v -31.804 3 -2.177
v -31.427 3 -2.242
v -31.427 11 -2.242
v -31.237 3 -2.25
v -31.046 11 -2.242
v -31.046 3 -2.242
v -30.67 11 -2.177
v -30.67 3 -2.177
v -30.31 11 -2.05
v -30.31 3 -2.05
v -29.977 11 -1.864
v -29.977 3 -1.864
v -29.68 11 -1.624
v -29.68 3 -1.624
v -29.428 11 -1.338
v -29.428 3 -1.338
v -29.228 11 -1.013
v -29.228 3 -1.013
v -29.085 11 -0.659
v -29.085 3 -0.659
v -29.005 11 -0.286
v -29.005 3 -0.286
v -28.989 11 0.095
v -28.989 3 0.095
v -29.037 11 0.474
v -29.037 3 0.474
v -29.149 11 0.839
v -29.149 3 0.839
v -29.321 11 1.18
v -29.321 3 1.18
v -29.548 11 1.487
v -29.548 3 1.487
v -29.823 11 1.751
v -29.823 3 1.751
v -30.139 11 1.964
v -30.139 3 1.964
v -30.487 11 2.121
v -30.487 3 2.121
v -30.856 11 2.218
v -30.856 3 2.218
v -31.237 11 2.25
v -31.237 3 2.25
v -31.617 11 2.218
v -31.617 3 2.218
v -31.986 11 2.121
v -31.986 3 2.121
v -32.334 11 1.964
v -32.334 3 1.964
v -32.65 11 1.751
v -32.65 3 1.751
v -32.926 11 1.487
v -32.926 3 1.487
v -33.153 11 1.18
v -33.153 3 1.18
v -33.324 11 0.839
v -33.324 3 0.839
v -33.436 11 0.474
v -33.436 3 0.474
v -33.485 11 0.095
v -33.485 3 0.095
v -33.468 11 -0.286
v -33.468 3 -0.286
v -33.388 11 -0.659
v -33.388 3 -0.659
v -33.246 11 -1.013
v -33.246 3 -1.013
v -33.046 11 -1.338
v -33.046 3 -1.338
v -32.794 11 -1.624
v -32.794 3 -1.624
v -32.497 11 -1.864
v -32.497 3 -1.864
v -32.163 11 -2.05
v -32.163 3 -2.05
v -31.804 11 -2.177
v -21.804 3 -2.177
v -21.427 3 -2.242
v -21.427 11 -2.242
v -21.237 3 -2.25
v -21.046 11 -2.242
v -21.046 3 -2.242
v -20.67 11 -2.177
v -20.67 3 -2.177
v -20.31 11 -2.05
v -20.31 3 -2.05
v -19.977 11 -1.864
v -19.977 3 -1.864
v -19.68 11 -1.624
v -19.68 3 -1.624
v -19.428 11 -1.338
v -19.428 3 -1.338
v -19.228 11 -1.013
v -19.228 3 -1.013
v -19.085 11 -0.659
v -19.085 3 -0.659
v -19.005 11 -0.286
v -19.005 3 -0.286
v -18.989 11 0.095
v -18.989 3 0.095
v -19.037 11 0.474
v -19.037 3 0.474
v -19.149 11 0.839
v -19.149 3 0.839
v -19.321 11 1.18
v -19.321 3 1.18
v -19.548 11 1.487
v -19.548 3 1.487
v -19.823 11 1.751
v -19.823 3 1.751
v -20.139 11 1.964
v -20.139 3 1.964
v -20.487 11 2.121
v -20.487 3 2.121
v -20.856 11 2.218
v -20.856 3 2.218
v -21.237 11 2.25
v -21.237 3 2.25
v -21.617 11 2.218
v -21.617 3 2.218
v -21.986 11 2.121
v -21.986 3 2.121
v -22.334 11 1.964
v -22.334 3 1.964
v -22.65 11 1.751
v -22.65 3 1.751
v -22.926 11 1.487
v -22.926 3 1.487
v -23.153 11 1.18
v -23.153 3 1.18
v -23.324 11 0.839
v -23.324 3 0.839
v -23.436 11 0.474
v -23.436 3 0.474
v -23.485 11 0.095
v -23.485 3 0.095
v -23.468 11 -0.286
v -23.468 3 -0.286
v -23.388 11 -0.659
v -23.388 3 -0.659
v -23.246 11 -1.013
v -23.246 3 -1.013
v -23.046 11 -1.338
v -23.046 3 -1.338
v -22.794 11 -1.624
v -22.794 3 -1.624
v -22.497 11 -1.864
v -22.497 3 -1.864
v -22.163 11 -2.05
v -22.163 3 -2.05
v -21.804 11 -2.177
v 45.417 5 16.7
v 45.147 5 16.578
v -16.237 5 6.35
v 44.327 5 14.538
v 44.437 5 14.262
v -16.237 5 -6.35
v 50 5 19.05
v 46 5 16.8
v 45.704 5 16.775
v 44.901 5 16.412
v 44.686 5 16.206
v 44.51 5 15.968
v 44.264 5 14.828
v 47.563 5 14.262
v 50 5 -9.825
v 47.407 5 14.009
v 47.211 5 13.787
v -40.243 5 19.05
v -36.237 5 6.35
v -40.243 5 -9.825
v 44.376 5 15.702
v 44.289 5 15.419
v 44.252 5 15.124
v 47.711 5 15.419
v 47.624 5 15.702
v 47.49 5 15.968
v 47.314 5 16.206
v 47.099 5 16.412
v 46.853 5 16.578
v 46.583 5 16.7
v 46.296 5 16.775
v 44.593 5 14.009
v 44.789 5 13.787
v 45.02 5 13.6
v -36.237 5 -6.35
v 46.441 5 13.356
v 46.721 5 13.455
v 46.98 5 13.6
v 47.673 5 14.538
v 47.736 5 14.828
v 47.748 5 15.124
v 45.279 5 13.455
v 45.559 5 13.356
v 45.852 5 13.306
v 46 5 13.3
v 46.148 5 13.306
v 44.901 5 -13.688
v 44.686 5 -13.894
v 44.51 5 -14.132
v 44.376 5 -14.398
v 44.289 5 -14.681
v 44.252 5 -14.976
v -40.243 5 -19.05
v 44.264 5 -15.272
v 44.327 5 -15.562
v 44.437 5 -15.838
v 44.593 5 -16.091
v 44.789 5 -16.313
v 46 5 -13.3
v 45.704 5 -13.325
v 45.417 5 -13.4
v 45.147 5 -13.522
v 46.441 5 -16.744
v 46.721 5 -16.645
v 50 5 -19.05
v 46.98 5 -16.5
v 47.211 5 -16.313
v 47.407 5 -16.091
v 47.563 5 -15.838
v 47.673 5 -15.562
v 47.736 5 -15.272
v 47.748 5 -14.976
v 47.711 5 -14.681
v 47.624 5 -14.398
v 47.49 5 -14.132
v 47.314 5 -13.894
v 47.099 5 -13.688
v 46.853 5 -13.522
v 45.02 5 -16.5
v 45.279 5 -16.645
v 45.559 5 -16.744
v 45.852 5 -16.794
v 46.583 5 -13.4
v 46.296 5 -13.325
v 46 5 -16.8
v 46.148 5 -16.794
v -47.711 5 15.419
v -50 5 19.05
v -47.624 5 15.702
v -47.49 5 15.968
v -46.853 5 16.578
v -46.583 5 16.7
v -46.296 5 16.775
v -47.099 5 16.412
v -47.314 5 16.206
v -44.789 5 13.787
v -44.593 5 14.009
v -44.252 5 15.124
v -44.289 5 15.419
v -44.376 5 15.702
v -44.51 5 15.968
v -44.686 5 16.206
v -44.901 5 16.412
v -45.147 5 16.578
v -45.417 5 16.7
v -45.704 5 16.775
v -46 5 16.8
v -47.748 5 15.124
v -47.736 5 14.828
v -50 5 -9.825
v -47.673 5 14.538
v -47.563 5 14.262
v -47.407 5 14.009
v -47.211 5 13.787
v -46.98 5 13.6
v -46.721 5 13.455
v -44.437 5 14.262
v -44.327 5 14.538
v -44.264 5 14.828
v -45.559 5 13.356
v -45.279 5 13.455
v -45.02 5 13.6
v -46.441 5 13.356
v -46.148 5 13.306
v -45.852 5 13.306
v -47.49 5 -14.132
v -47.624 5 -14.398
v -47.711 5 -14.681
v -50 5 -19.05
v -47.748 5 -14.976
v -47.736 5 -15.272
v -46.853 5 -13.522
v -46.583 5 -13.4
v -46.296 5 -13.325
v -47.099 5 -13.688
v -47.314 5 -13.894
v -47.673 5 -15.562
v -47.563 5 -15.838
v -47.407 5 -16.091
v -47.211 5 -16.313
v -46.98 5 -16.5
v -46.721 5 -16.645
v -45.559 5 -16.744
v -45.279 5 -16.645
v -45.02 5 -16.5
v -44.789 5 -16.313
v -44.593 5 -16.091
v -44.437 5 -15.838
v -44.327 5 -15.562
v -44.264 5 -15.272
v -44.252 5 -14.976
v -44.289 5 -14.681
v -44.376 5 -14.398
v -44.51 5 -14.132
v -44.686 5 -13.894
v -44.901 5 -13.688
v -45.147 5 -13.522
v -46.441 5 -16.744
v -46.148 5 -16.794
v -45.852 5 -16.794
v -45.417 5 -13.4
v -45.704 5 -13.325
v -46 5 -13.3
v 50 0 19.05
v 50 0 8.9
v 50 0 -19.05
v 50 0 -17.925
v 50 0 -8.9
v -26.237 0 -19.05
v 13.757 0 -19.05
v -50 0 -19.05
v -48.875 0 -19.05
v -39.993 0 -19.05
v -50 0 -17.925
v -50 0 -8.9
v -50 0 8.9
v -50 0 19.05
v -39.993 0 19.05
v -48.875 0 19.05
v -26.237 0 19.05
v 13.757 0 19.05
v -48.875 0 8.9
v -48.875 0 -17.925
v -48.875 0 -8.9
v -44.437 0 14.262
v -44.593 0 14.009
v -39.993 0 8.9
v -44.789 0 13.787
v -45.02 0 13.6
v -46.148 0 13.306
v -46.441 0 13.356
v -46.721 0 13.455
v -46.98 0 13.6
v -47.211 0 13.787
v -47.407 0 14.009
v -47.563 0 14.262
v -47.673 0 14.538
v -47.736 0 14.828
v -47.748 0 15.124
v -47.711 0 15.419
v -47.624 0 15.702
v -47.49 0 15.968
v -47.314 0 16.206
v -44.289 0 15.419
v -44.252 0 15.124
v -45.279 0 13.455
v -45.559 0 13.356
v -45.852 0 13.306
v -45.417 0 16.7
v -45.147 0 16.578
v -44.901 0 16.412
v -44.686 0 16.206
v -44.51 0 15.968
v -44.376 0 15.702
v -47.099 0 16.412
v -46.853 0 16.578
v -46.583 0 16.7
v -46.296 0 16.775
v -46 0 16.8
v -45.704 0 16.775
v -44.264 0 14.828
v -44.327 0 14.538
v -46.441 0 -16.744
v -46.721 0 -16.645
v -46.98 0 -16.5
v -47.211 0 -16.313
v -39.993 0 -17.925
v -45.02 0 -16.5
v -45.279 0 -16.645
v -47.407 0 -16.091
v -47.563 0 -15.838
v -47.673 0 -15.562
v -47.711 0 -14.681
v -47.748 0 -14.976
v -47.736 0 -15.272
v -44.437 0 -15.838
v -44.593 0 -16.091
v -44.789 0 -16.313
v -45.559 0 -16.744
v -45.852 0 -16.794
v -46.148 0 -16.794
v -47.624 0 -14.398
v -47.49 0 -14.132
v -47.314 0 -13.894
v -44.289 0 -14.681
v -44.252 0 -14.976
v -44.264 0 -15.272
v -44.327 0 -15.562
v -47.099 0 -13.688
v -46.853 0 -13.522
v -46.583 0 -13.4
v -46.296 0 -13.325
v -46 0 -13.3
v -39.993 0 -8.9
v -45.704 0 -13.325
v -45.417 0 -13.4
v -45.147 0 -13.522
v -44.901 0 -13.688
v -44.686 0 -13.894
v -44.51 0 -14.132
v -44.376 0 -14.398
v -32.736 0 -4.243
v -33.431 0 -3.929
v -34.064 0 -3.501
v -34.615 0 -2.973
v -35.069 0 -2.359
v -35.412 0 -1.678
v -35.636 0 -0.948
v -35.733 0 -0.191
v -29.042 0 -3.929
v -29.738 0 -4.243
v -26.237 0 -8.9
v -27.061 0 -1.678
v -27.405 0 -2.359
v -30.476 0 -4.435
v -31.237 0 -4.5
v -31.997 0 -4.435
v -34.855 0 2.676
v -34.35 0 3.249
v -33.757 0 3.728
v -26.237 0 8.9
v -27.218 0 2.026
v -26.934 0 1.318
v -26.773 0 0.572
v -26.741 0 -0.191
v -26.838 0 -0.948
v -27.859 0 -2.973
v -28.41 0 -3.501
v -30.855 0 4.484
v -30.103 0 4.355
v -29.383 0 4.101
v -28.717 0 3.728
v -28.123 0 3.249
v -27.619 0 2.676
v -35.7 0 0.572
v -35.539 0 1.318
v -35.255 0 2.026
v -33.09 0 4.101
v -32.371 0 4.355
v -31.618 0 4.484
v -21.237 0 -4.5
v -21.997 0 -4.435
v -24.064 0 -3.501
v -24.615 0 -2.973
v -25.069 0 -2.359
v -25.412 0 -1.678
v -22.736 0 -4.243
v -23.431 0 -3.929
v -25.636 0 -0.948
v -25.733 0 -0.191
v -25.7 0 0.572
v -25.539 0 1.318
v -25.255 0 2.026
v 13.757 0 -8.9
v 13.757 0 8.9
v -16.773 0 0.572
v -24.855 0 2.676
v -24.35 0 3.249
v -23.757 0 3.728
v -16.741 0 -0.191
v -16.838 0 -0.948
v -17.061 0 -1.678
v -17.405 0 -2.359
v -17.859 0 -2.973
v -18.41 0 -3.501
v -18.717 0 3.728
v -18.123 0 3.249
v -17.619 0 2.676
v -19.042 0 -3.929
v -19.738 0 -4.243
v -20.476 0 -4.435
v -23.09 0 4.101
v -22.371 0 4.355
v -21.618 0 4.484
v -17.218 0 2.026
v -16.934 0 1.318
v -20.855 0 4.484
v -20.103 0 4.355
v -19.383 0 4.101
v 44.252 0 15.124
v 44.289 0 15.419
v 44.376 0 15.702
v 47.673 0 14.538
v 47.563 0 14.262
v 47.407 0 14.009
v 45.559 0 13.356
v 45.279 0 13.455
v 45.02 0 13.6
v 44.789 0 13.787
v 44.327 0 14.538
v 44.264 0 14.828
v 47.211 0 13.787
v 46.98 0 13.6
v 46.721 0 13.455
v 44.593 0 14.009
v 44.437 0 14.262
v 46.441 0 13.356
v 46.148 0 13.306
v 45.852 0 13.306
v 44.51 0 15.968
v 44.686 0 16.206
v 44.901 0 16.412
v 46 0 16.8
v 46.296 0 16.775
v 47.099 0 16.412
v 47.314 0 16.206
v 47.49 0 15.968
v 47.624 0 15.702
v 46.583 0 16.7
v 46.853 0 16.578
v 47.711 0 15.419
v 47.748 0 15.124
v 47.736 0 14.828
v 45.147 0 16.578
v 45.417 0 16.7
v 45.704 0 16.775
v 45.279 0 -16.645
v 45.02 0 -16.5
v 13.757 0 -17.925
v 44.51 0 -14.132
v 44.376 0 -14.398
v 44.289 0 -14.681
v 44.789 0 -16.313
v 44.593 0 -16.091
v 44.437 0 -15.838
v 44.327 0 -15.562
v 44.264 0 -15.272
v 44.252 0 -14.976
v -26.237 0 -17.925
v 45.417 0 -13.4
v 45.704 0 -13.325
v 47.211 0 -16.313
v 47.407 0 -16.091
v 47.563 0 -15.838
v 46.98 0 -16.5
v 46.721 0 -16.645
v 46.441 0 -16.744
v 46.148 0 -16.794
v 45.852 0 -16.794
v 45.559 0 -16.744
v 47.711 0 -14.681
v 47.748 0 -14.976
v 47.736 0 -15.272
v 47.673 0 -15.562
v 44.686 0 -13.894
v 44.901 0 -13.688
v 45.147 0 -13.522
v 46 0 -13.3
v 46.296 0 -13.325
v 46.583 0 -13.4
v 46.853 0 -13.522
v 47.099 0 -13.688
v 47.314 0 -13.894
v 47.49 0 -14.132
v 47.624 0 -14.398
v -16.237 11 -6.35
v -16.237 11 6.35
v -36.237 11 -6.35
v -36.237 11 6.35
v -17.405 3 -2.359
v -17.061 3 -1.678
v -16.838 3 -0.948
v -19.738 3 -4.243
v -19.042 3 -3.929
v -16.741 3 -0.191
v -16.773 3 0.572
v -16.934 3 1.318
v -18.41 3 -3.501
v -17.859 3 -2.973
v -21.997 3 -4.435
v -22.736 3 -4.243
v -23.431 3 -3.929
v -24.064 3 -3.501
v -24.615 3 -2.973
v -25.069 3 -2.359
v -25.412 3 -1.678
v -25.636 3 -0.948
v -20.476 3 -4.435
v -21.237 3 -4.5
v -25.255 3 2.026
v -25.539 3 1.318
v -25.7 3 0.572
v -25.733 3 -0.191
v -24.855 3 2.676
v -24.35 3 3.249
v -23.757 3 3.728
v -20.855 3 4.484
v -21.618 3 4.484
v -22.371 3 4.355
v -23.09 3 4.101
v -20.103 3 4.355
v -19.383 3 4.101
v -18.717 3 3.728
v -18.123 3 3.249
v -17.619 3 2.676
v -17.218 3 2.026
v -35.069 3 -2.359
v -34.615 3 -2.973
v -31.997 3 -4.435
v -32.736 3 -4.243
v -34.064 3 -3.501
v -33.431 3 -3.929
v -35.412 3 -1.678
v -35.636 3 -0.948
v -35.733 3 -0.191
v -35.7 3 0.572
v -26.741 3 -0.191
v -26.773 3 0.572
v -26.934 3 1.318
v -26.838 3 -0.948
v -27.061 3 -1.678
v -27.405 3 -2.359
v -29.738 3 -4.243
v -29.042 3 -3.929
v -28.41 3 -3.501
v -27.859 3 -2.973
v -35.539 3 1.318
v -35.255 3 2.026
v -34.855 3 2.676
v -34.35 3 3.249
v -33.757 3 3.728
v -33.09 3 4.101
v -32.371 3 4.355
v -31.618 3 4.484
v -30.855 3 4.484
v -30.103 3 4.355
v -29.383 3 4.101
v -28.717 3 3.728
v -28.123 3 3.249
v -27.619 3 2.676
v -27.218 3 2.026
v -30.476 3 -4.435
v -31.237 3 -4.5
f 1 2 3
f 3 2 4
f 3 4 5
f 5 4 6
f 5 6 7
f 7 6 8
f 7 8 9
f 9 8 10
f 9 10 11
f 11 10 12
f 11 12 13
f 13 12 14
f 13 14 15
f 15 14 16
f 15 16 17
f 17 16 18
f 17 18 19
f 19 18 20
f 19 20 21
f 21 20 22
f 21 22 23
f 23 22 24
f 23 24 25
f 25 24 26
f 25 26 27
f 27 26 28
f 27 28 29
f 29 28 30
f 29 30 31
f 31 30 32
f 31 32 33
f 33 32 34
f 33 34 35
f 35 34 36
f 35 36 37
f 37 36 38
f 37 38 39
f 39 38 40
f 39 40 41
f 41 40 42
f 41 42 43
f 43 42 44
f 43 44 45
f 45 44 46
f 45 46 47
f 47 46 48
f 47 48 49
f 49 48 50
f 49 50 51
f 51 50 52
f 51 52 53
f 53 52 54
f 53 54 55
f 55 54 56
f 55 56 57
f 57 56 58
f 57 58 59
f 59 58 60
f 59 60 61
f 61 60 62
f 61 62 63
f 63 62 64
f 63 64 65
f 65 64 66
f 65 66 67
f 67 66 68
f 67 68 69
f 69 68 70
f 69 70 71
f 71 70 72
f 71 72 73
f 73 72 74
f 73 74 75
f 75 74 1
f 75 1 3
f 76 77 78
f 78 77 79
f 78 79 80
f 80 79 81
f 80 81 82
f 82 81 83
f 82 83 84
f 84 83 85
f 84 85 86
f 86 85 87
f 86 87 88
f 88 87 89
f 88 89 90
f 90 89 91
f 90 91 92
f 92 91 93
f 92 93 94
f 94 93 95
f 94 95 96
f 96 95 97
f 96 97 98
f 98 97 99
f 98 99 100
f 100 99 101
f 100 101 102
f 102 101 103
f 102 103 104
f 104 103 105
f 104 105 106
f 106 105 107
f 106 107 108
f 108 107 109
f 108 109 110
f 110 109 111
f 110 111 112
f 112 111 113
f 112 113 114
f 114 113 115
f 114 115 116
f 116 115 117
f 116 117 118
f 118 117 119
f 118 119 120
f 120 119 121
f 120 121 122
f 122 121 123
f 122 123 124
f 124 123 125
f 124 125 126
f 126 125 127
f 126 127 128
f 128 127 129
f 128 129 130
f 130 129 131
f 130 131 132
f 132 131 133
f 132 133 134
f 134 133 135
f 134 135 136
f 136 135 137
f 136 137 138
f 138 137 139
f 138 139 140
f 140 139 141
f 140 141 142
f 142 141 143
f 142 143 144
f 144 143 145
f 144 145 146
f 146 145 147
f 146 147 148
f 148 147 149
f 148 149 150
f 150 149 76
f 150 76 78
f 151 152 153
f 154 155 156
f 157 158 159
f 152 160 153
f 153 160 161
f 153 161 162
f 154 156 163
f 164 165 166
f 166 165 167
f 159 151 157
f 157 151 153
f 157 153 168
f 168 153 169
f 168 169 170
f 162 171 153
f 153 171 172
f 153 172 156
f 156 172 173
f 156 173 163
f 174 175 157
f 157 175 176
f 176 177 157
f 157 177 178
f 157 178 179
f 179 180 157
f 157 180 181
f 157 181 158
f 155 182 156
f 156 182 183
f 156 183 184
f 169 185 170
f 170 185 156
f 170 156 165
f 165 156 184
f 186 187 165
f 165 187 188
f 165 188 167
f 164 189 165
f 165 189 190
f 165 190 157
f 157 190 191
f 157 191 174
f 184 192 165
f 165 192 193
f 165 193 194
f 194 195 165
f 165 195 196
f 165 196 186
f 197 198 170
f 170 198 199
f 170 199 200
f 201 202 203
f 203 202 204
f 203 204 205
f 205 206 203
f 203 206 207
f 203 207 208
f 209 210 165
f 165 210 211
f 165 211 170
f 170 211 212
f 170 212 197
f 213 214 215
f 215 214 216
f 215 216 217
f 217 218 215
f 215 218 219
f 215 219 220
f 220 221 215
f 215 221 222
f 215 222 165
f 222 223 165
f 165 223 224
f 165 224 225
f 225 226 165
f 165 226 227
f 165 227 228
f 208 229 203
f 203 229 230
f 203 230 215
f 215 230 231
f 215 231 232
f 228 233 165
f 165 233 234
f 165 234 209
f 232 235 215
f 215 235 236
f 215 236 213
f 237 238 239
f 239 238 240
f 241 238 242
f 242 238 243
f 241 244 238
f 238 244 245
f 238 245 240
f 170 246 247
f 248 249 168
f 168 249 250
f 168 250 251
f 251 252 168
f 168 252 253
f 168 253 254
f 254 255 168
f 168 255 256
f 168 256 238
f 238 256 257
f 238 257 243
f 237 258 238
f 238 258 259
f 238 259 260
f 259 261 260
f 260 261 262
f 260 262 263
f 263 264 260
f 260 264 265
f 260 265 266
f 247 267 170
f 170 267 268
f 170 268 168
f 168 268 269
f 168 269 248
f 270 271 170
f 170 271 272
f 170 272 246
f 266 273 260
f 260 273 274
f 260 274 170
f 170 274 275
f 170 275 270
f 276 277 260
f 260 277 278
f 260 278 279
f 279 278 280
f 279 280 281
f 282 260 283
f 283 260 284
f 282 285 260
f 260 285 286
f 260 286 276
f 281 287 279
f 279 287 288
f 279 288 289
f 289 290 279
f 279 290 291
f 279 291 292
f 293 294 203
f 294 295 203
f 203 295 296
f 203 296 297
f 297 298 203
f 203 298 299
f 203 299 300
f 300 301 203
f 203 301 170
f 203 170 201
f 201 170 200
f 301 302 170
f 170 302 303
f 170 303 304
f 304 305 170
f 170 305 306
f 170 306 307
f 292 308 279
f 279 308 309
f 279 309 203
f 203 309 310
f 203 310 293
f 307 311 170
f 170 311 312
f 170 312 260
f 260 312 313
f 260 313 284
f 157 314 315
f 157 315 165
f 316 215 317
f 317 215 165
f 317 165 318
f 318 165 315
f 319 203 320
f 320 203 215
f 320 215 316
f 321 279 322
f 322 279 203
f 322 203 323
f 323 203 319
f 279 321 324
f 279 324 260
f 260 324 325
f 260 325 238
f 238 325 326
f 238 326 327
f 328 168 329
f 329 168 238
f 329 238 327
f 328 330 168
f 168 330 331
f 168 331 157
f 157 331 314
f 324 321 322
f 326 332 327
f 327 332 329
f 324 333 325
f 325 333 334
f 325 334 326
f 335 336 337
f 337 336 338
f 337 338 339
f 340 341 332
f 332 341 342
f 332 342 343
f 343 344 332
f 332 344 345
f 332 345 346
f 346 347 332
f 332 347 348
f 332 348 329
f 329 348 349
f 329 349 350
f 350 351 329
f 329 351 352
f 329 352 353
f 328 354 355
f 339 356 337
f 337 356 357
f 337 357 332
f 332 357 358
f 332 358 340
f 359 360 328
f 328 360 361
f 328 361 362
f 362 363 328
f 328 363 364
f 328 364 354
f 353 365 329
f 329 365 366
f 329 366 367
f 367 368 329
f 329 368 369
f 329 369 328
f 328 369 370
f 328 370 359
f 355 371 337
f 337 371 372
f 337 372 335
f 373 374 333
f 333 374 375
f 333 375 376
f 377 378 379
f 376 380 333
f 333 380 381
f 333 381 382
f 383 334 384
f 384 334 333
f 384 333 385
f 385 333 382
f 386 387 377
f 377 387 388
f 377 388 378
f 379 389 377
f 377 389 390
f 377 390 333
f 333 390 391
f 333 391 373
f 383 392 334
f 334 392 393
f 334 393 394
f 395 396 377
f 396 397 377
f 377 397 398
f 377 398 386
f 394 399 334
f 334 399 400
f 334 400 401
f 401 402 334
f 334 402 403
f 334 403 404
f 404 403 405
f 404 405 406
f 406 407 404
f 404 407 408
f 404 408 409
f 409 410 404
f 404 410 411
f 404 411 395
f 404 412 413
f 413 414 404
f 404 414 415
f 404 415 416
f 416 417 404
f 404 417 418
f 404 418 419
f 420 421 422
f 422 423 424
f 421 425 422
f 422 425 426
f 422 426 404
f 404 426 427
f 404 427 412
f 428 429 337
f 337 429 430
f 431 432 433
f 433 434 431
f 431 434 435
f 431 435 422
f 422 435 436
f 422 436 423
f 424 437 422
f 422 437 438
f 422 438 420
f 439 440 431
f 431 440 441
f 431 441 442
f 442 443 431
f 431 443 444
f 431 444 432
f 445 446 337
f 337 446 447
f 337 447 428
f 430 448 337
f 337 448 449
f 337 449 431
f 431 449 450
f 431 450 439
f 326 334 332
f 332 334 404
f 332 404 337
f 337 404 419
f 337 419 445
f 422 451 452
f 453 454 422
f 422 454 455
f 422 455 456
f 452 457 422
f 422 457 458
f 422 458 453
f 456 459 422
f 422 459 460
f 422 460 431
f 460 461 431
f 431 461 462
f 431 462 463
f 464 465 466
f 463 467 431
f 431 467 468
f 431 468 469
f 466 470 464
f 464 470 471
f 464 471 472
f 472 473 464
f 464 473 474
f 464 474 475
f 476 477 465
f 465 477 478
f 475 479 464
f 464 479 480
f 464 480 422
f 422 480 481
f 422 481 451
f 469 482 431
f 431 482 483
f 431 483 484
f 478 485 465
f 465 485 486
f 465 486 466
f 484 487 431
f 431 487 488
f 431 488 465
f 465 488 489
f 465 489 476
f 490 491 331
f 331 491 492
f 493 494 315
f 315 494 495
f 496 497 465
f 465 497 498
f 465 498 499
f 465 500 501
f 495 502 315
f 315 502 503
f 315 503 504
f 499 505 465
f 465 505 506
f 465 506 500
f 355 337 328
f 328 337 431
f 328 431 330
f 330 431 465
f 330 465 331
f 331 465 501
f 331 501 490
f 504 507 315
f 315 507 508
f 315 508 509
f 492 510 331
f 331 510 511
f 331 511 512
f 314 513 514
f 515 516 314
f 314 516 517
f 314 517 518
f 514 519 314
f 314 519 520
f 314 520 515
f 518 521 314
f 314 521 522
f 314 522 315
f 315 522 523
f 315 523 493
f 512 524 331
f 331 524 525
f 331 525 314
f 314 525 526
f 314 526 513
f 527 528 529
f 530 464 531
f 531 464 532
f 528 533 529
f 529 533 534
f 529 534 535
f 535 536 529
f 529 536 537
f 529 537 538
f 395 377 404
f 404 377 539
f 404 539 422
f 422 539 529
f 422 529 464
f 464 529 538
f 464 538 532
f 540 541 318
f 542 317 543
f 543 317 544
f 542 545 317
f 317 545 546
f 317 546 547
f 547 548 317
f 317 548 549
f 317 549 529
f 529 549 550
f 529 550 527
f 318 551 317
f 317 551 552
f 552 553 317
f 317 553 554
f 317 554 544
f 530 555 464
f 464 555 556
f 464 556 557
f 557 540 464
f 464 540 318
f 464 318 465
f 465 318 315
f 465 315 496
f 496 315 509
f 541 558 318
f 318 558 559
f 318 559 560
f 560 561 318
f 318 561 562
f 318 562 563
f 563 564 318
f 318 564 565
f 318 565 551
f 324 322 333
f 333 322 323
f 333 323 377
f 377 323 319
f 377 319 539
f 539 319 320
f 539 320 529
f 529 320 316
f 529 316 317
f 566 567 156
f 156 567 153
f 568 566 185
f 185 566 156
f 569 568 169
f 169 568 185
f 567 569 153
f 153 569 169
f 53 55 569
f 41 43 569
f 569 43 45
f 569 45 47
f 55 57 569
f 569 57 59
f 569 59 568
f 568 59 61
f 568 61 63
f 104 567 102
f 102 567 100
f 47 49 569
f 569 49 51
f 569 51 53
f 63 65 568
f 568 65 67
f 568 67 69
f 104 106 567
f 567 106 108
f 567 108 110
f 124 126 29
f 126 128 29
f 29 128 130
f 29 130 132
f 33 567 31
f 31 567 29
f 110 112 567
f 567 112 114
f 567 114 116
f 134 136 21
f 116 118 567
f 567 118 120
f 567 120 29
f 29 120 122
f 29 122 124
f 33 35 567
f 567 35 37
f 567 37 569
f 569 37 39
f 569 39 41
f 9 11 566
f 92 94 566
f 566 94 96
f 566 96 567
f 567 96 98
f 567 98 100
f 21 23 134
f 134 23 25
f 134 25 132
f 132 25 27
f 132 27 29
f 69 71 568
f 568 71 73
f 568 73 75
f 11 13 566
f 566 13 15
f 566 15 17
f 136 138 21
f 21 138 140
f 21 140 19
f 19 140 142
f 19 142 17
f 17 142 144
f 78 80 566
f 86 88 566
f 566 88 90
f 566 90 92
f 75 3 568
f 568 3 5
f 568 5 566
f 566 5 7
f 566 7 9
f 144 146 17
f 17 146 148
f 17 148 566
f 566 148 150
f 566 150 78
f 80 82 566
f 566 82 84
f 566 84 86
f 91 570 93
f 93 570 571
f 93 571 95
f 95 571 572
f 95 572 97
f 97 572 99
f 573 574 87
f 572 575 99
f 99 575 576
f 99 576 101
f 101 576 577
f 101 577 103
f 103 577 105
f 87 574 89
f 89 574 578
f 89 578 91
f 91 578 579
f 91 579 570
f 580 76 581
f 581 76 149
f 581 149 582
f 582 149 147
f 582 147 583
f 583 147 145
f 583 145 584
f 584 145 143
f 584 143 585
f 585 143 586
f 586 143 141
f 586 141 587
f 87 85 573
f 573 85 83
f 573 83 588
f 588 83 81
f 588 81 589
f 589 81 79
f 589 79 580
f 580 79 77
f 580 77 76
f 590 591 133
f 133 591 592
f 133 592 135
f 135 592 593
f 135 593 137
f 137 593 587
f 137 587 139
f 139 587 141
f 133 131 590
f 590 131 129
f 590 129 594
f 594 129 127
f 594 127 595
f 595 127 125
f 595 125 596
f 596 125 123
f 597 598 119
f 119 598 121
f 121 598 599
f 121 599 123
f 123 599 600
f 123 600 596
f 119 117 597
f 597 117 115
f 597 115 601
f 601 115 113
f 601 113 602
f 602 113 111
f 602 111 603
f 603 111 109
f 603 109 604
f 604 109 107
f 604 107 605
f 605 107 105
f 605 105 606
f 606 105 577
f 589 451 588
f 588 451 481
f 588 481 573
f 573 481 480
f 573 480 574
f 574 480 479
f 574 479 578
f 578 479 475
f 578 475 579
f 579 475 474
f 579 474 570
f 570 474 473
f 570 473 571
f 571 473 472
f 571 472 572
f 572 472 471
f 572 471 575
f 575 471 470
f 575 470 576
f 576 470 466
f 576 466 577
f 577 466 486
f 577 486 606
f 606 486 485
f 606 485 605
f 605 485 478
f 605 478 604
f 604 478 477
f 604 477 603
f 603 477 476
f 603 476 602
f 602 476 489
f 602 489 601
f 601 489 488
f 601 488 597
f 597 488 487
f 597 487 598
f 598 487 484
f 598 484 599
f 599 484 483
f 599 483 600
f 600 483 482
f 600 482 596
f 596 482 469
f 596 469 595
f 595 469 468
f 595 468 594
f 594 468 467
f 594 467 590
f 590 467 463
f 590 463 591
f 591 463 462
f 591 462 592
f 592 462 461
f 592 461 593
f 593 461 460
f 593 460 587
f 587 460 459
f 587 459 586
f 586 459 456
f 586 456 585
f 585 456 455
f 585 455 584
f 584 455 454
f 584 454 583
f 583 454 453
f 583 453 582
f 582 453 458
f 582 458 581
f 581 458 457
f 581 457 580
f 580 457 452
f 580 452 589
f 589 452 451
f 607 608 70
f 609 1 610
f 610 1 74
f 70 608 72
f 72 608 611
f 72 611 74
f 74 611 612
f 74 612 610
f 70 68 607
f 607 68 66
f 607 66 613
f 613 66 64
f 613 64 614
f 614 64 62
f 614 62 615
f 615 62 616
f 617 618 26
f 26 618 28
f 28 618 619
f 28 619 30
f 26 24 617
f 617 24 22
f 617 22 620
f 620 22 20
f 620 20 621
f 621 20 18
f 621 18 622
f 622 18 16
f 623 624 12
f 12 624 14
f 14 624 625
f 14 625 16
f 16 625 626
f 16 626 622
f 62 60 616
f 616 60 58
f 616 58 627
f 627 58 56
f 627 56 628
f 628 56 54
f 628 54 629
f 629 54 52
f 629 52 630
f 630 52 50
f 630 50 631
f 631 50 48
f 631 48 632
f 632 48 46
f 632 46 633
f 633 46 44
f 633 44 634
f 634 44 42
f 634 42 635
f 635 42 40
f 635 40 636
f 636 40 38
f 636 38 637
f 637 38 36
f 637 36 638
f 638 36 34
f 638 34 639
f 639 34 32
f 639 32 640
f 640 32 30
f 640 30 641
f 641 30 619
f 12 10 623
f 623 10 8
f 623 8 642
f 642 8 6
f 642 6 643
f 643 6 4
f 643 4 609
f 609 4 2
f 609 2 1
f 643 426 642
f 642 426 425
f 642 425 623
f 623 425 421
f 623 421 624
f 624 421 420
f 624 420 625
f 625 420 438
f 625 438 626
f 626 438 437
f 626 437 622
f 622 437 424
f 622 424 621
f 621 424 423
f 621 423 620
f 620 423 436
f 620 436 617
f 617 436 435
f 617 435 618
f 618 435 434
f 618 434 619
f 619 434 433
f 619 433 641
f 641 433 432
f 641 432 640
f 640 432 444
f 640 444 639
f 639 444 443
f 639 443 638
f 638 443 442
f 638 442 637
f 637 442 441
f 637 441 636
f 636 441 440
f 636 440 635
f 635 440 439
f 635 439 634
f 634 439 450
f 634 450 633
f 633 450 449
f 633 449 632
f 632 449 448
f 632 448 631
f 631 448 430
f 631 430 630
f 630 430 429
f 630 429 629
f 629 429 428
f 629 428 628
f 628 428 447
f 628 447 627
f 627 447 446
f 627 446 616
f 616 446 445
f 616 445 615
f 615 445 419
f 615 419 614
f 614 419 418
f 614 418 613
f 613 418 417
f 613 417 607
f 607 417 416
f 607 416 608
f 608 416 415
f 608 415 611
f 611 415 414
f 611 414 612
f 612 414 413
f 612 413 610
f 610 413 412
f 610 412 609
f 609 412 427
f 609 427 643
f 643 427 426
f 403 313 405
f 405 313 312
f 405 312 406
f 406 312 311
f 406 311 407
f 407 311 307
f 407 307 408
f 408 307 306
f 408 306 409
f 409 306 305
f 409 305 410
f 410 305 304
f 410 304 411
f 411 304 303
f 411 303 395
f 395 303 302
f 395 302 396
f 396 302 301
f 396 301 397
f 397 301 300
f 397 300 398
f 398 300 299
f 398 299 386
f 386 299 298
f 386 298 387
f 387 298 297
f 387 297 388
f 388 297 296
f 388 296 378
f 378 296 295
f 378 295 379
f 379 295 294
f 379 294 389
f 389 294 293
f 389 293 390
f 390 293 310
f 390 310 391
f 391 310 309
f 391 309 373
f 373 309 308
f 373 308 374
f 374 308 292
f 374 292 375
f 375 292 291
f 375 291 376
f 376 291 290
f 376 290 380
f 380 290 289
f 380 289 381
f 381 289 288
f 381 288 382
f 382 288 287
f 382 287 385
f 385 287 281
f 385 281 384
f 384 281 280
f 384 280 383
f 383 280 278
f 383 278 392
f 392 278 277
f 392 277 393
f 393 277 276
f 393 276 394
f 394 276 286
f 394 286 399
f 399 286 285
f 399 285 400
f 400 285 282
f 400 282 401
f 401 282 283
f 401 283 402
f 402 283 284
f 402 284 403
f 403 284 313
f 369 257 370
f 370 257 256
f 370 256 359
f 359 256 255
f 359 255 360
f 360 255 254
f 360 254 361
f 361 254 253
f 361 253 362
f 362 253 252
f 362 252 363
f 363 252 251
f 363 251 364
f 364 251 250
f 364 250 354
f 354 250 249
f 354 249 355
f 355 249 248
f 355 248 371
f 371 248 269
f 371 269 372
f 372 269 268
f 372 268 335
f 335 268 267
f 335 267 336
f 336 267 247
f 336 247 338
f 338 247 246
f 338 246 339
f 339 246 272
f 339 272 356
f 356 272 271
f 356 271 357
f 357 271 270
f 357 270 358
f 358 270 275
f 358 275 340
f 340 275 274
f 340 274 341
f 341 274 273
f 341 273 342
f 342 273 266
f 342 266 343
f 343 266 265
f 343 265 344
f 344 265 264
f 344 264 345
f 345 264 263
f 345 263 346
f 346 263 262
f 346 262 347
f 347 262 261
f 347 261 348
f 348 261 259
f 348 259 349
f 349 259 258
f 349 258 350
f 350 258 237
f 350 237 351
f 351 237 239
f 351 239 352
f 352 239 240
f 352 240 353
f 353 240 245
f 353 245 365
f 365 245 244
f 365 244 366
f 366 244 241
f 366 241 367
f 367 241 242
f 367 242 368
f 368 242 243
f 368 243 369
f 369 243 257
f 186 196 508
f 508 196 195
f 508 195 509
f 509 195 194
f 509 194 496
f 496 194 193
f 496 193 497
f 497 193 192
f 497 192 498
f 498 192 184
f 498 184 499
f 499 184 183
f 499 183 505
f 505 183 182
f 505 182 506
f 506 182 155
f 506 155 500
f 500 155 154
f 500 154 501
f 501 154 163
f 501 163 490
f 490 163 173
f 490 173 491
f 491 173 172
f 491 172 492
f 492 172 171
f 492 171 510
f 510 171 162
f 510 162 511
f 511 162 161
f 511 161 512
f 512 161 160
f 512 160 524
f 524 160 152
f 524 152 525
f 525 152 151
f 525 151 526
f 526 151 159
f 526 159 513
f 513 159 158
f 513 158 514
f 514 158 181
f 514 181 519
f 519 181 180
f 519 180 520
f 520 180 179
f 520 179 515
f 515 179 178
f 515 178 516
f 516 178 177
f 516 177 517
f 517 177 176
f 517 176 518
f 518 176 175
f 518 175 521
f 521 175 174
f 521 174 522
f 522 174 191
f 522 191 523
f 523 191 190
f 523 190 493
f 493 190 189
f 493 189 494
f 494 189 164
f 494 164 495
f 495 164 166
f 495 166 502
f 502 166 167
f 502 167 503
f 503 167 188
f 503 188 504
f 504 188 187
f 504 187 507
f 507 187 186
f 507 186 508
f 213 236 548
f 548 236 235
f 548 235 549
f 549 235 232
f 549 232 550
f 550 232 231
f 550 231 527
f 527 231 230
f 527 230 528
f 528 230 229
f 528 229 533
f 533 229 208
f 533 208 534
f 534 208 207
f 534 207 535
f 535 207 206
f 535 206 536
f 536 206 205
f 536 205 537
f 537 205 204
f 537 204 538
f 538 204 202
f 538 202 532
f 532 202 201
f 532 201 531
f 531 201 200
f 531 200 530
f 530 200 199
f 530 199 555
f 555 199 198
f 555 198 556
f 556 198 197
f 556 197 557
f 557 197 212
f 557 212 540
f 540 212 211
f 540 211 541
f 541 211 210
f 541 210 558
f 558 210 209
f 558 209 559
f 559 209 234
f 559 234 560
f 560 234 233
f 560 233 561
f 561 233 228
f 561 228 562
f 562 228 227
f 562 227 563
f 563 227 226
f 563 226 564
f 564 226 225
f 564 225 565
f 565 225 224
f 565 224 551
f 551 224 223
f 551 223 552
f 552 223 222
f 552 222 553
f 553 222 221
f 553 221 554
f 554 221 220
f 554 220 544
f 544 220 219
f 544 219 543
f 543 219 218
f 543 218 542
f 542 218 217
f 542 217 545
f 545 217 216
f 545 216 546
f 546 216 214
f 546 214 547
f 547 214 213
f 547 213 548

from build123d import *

# Parameters (mm, degrees)
SKETCH1_W                   = 100
SKETCH1_H                   = 38.1
BOSS_EXTRUDE1_DEPTH         = 5
SKETCH2_W                   = 20
SKETCH2_H                   = 12.7
BOSS_EXTRUDE2_DEPTH         = 6
TAP_DRILL_FOR_M4X0_7_TAP1_D = 3.3
SKETCH3_R                   = 2.25
CUT_EXTRUDE1_DEPTH          = 55.625108696
SKETCH12_R                  = 4.5
CUT_EXTRUDE2_DEPTH          = 3
SKETCH13_R                  = 1.75
CUT_EXTRUDE3_DEPTH          = 10


with BuildPart() as part:
    # Sketch1 → Boss-Extrude1 (new body)
    with BuildSketch(Plane(origin=(0, 0, 0), x_dir=(1, 0, 0), z_dir=(0, 1, 0))):
        Rectangle(SKETCH1_W, SKETCH1_H)
    extrude(amount=BOSS_EXTRUDE1_DEPTH)

    # Sketch2 → Boss-Extrude2 (add)
    with BuildSketch(Plane(origin=(0, 5, 0), x_dir=(1, 0, 0), z_dir=(0, 1, 0))):
        with Locations((-26.236645744, 0)):
            Rectangle(SKETCH2_W, SKETCH2_H)
    extrude(amount=BOSS_EXTRUDE2_DEPTH)

    # Tap Drill for M4x0.7 Tap1 (through all)
    with Locations(Plane(origin=(0, 11, 0), x_dir=(1, 0, 0), z_dir=(0, 1, 0))):
        with Locations((-31.236645744, 0), (-21.236645744, 0)):
            Hole(TAP_DRILL_FOR_M4X0_7_TAP1_D / 2)

    # Sketch3 → Cut-Extrude1 (cut, through all)
    with BuildSketch(Plane(origin=(0, 11, 0), x_dir=(1, 0, 0), z_dir=(0, 1, 0))):
        with Locations(Location((-21.236645744, 0, 0), (0, 0, 270))):
            Circle(SKETCH3_R)
        with Locations(Location((-31.236645744, 0, 0), (0, 0, 270))):
            Circle(SKETCH3_R)
    extrude(amount=-CUT_EXTRUDE1_DEPTH, mode=Mode.SUBTRACT)

    # Sketch12 → Cut-Extrude2 (cut)
    with BuildSketch(Plane.XZ):
        with Locations(Location((-31.236645744, 0, 0), (0, 0, 270))):
            Circle(SKETCH12_R)
        with Locations(Location((-21.236645744, 0, 0), (0, 0, 270))):
            Circle(SKETCH12_R)
    extrude(amount=-CUT_EXTRUDE2_DEPTH, mode=Mode.SUBTRACT)

    # Sketch13 → Cut-Extrude3 (cut)
    with BuildSketch(Plane(origin=(0, 5, 0), x_dir=(1, 0, 0), z_dir=(0, 1, 0))):
        with Locations(Location((-46, 15.05, 0), (0, 0, 270))):
            Circle(SKETCH13_R)
        with Locations(Location((-46, -15.05, 0), (0, 0, 270))):
            Circle(SKETCH13_R)
        with Locations(Location((46, -15.05, 0), (0, 0, 270))):
            Circle(SKETCH13_R)
        with Locations(Location((46, 15.05, 0), (0, 0, 270))):
            Circle(SKETCH13_R)
    extrude(amount=-CUT_EXTRUDE3_DEPTH, mode=Mode.SUBTRACT)


solid = part.part
